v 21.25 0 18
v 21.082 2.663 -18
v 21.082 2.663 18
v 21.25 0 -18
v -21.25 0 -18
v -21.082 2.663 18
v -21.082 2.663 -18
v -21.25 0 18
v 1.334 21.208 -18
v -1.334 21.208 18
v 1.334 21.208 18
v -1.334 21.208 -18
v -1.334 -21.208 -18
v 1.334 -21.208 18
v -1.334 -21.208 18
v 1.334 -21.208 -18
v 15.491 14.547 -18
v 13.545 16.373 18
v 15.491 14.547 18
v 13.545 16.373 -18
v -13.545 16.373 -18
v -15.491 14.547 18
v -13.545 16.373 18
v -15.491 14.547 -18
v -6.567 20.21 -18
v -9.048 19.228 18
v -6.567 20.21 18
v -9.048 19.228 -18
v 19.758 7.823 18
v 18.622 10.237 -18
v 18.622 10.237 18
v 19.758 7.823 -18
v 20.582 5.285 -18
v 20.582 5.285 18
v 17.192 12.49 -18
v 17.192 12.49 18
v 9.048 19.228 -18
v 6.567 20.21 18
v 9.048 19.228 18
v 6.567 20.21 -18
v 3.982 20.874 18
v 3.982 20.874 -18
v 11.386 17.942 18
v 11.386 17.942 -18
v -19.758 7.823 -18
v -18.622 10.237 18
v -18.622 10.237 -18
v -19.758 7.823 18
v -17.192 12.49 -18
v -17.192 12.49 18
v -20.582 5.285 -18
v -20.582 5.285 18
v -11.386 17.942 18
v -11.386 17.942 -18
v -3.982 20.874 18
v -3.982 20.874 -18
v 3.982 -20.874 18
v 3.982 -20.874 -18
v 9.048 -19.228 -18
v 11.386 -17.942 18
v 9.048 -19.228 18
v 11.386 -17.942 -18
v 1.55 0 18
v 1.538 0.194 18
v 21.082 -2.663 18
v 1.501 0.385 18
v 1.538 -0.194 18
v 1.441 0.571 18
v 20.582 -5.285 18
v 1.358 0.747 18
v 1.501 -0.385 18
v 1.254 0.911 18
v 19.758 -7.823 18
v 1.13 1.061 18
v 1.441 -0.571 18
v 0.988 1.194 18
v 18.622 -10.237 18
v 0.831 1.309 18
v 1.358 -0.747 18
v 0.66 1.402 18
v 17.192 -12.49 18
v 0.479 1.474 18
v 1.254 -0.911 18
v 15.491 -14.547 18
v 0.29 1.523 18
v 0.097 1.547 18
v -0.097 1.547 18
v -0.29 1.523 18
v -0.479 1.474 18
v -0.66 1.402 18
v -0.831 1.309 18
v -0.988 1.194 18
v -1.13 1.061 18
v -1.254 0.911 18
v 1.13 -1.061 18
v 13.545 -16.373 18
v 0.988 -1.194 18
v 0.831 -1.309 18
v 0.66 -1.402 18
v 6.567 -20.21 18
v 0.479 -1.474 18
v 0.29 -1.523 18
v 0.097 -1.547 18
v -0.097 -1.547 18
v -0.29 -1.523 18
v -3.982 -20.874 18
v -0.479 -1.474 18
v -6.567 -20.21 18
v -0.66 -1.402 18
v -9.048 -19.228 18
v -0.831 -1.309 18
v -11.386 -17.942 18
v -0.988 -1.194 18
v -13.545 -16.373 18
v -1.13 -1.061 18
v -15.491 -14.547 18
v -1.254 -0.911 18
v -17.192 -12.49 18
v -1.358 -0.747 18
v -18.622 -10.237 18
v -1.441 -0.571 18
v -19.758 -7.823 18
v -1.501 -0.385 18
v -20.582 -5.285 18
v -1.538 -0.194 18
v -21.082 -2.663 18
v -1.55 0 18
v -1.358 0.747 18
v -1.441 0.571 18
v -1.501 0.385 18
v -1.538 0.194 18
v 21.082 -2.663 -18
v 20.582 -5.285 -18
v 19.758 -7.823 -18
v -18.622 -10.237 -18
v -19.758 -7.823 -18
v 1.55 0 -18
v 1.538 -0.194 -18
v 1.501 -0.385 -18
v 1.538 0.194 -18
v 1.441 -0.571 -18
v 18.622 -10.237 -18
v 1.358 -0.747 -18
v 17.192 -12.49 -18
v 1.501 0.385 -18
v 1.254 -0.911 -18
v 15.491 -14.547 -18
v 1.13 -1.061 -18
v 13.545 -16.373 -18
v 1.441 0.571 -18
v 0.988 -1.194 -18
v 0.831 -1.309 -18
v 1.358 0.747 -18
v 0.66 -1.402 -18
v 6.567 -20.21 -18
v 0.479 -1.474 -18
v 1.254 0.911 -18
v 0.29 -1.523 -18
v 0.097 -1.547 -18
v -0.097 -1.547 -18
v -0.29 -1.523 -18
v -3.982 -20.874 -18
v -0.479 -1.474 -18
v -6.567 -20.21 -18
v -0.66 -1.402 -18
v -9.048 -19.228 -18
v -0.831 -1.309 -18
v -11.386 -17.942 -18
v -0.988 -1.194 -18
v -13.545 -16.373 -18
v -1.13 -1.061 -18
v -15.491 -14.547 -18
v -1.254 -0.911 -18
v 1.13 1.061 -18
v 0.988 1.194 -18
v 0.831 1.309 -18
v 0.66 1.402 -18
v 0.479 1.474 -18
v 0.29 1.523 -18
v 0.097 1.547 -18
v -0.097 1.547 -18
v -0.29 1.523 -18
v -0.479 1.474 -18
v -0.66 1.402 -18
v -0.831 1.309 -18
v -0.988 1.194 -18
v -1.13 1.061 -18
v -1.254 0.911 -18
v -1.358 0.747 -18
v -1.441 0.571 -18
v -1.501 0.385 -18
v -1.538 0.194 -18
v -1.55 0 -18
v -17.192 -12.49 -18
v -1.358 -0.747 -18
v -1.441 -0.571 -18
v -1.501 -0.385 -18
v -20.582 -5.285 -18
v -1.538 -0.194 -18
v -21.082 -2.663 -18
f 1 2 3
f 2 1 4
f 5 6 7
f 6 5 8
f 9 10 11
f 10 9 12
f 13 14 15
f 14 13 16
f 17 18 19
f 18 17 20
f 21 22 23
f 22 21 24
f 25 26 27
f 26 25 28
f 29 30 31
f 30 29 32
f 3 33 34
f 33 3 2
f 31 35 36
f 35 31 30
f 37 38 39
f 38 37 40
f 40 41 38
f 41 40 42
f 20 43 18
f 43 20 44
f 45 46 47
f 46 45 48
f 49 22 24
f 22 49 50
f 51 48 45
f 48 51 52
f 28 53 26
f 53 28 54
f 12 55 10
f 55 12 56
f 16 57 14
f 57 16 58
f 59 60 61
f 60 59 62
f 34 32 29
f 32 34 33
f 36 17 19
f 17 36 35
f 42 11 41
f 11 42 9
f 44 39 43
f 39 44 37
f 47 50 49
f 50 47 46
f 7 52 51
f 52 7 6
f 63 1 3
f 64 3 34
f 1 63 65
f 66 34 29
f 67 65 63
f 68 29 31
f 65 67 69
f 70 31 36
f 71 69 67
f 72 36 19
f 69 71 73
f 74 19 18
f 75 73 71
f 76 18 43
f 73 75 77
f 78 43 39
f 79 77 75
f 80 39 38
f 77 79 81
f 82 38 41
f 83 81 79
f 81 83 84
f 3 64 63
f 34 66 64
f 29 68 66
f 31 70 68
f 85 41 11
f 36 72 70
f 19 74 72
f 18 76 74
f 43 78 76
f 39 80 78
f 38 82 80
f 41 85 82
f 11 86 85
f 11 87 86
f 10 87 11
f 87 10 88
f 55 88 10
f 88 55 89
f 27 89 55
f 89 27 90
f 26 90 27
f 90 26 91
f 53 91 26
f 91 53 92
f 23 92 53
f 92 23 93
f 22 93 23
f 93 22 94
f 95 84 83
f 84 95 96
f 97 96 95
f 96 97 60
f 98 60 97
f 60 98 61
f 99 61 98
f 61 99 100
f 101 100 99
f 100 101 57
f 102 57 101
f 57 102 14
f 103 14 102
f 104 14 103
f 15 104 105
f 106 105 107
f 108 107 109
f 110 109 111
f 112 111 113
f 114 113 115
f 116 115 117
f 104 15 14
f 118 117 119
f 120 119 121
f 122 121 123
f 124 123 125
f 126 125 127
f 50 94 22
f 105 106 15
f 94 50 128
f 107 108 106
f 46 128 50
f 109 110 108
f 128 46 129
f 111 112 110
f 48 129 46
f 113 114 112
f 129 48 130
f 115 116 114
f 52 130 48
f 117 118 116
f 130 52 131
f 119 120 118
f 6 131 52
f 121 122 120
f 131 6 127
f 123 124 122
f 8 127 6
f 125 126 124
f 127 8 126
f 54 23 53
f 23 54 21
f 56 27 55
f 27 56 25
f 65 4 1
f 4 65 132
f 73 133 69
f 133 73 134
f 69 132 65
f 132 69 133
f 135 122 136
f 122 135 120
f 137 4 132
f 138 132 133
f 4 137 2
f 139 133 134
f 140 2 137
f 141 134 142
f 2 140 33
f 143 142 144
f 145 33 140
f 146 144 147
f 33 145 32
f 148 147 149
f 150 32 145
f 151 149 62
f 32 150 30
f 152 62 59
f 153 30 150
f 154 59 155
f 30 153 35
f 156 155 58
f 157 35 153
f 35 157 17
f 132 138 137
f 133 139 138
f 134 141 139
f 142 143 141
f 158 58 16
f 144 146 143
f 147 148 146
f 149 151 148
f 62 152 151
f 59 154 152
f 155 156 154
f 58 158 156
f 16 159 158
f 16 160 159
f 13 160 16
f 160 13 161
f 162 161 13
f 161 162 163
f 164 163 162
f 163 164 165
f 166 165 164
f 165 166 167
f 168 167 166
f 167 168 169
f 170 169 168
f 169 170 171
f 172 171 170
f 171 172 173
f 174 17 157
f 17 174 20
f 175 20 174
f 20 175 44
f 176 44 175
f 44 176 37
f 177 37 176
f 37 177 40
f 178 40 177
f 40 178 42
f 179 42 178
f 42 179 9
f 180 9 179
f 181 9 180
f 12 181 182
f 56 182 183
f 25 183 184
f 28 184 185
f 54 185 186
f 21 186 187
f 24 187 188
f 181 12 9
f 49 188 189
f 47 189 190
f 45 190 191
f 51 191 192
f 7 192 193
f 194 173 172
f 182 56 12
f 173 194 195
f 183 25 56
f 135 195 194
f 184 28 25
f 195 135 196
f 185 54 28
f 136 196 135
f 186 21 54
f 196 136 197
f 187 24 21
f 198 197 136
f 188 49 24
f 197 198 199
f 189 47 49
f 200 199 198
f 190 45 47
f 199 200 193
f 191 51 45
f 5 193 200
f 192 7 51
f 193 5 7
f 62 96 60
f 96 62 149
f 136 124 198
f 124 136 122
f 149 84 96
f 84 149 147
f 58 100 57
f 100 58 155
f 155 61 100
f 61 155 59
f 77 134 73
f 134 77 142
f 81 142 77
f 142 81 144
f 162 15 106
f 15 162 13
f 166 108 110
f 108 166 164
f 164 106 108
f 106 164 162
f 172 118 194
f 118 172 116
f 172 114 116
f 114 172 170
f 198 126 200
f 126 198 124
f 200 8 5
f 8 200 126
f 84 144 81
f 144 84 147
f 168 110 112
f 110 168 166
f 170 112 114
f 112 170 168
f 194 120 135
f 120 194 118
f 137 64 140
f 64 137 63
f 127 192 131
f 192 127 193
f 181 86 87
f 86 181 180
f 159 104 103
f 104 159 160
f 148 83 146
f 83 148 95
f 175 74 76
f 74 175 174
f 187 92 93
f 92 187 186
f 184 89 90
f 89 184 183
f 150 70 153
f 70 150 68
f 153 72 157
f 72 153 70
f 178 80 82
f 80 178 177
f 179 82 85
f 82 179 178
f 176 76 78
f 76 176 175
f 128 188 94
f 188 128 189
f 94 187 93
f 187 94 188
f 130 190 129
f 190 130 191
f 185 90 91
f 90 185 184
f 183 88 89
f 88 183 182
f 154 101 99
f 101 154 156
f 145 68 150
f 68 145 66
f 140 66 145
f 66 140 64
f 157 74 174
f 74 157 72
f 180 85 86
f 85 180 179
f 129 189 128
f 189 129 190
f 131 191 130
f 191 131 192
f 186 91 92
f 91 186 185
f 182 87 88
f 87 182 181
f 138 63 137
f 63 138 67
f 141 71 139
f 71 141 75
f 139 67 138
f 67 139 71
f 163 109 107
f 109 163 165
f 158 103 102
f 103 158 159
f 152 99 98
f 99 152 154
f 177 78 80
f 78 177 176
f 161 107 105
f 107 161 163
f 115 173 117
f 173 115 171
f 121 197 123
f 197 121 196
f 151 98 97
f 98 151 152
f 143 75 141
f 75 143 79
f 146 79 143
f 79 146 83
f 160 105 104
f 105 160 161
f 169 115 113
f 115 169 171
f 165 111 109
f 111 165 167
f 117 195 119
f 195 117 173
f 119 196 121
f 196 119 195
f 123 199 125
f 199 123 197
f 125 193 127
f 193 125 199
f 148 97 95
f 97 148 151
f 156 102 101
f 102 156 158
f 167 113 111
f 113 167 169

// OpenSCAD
$fn = 50;


difference() {
	union() {
		translate(v = [0, 0, -18.0000000000]) {
			cylinder(h = 36, r = 21.2500000000);
		}
	}
	union() {
		translate(v = [0, 0, -100.0000000000]) {
			cylinder(h = 200, r = 1.5500000000);
		}
	}
}
